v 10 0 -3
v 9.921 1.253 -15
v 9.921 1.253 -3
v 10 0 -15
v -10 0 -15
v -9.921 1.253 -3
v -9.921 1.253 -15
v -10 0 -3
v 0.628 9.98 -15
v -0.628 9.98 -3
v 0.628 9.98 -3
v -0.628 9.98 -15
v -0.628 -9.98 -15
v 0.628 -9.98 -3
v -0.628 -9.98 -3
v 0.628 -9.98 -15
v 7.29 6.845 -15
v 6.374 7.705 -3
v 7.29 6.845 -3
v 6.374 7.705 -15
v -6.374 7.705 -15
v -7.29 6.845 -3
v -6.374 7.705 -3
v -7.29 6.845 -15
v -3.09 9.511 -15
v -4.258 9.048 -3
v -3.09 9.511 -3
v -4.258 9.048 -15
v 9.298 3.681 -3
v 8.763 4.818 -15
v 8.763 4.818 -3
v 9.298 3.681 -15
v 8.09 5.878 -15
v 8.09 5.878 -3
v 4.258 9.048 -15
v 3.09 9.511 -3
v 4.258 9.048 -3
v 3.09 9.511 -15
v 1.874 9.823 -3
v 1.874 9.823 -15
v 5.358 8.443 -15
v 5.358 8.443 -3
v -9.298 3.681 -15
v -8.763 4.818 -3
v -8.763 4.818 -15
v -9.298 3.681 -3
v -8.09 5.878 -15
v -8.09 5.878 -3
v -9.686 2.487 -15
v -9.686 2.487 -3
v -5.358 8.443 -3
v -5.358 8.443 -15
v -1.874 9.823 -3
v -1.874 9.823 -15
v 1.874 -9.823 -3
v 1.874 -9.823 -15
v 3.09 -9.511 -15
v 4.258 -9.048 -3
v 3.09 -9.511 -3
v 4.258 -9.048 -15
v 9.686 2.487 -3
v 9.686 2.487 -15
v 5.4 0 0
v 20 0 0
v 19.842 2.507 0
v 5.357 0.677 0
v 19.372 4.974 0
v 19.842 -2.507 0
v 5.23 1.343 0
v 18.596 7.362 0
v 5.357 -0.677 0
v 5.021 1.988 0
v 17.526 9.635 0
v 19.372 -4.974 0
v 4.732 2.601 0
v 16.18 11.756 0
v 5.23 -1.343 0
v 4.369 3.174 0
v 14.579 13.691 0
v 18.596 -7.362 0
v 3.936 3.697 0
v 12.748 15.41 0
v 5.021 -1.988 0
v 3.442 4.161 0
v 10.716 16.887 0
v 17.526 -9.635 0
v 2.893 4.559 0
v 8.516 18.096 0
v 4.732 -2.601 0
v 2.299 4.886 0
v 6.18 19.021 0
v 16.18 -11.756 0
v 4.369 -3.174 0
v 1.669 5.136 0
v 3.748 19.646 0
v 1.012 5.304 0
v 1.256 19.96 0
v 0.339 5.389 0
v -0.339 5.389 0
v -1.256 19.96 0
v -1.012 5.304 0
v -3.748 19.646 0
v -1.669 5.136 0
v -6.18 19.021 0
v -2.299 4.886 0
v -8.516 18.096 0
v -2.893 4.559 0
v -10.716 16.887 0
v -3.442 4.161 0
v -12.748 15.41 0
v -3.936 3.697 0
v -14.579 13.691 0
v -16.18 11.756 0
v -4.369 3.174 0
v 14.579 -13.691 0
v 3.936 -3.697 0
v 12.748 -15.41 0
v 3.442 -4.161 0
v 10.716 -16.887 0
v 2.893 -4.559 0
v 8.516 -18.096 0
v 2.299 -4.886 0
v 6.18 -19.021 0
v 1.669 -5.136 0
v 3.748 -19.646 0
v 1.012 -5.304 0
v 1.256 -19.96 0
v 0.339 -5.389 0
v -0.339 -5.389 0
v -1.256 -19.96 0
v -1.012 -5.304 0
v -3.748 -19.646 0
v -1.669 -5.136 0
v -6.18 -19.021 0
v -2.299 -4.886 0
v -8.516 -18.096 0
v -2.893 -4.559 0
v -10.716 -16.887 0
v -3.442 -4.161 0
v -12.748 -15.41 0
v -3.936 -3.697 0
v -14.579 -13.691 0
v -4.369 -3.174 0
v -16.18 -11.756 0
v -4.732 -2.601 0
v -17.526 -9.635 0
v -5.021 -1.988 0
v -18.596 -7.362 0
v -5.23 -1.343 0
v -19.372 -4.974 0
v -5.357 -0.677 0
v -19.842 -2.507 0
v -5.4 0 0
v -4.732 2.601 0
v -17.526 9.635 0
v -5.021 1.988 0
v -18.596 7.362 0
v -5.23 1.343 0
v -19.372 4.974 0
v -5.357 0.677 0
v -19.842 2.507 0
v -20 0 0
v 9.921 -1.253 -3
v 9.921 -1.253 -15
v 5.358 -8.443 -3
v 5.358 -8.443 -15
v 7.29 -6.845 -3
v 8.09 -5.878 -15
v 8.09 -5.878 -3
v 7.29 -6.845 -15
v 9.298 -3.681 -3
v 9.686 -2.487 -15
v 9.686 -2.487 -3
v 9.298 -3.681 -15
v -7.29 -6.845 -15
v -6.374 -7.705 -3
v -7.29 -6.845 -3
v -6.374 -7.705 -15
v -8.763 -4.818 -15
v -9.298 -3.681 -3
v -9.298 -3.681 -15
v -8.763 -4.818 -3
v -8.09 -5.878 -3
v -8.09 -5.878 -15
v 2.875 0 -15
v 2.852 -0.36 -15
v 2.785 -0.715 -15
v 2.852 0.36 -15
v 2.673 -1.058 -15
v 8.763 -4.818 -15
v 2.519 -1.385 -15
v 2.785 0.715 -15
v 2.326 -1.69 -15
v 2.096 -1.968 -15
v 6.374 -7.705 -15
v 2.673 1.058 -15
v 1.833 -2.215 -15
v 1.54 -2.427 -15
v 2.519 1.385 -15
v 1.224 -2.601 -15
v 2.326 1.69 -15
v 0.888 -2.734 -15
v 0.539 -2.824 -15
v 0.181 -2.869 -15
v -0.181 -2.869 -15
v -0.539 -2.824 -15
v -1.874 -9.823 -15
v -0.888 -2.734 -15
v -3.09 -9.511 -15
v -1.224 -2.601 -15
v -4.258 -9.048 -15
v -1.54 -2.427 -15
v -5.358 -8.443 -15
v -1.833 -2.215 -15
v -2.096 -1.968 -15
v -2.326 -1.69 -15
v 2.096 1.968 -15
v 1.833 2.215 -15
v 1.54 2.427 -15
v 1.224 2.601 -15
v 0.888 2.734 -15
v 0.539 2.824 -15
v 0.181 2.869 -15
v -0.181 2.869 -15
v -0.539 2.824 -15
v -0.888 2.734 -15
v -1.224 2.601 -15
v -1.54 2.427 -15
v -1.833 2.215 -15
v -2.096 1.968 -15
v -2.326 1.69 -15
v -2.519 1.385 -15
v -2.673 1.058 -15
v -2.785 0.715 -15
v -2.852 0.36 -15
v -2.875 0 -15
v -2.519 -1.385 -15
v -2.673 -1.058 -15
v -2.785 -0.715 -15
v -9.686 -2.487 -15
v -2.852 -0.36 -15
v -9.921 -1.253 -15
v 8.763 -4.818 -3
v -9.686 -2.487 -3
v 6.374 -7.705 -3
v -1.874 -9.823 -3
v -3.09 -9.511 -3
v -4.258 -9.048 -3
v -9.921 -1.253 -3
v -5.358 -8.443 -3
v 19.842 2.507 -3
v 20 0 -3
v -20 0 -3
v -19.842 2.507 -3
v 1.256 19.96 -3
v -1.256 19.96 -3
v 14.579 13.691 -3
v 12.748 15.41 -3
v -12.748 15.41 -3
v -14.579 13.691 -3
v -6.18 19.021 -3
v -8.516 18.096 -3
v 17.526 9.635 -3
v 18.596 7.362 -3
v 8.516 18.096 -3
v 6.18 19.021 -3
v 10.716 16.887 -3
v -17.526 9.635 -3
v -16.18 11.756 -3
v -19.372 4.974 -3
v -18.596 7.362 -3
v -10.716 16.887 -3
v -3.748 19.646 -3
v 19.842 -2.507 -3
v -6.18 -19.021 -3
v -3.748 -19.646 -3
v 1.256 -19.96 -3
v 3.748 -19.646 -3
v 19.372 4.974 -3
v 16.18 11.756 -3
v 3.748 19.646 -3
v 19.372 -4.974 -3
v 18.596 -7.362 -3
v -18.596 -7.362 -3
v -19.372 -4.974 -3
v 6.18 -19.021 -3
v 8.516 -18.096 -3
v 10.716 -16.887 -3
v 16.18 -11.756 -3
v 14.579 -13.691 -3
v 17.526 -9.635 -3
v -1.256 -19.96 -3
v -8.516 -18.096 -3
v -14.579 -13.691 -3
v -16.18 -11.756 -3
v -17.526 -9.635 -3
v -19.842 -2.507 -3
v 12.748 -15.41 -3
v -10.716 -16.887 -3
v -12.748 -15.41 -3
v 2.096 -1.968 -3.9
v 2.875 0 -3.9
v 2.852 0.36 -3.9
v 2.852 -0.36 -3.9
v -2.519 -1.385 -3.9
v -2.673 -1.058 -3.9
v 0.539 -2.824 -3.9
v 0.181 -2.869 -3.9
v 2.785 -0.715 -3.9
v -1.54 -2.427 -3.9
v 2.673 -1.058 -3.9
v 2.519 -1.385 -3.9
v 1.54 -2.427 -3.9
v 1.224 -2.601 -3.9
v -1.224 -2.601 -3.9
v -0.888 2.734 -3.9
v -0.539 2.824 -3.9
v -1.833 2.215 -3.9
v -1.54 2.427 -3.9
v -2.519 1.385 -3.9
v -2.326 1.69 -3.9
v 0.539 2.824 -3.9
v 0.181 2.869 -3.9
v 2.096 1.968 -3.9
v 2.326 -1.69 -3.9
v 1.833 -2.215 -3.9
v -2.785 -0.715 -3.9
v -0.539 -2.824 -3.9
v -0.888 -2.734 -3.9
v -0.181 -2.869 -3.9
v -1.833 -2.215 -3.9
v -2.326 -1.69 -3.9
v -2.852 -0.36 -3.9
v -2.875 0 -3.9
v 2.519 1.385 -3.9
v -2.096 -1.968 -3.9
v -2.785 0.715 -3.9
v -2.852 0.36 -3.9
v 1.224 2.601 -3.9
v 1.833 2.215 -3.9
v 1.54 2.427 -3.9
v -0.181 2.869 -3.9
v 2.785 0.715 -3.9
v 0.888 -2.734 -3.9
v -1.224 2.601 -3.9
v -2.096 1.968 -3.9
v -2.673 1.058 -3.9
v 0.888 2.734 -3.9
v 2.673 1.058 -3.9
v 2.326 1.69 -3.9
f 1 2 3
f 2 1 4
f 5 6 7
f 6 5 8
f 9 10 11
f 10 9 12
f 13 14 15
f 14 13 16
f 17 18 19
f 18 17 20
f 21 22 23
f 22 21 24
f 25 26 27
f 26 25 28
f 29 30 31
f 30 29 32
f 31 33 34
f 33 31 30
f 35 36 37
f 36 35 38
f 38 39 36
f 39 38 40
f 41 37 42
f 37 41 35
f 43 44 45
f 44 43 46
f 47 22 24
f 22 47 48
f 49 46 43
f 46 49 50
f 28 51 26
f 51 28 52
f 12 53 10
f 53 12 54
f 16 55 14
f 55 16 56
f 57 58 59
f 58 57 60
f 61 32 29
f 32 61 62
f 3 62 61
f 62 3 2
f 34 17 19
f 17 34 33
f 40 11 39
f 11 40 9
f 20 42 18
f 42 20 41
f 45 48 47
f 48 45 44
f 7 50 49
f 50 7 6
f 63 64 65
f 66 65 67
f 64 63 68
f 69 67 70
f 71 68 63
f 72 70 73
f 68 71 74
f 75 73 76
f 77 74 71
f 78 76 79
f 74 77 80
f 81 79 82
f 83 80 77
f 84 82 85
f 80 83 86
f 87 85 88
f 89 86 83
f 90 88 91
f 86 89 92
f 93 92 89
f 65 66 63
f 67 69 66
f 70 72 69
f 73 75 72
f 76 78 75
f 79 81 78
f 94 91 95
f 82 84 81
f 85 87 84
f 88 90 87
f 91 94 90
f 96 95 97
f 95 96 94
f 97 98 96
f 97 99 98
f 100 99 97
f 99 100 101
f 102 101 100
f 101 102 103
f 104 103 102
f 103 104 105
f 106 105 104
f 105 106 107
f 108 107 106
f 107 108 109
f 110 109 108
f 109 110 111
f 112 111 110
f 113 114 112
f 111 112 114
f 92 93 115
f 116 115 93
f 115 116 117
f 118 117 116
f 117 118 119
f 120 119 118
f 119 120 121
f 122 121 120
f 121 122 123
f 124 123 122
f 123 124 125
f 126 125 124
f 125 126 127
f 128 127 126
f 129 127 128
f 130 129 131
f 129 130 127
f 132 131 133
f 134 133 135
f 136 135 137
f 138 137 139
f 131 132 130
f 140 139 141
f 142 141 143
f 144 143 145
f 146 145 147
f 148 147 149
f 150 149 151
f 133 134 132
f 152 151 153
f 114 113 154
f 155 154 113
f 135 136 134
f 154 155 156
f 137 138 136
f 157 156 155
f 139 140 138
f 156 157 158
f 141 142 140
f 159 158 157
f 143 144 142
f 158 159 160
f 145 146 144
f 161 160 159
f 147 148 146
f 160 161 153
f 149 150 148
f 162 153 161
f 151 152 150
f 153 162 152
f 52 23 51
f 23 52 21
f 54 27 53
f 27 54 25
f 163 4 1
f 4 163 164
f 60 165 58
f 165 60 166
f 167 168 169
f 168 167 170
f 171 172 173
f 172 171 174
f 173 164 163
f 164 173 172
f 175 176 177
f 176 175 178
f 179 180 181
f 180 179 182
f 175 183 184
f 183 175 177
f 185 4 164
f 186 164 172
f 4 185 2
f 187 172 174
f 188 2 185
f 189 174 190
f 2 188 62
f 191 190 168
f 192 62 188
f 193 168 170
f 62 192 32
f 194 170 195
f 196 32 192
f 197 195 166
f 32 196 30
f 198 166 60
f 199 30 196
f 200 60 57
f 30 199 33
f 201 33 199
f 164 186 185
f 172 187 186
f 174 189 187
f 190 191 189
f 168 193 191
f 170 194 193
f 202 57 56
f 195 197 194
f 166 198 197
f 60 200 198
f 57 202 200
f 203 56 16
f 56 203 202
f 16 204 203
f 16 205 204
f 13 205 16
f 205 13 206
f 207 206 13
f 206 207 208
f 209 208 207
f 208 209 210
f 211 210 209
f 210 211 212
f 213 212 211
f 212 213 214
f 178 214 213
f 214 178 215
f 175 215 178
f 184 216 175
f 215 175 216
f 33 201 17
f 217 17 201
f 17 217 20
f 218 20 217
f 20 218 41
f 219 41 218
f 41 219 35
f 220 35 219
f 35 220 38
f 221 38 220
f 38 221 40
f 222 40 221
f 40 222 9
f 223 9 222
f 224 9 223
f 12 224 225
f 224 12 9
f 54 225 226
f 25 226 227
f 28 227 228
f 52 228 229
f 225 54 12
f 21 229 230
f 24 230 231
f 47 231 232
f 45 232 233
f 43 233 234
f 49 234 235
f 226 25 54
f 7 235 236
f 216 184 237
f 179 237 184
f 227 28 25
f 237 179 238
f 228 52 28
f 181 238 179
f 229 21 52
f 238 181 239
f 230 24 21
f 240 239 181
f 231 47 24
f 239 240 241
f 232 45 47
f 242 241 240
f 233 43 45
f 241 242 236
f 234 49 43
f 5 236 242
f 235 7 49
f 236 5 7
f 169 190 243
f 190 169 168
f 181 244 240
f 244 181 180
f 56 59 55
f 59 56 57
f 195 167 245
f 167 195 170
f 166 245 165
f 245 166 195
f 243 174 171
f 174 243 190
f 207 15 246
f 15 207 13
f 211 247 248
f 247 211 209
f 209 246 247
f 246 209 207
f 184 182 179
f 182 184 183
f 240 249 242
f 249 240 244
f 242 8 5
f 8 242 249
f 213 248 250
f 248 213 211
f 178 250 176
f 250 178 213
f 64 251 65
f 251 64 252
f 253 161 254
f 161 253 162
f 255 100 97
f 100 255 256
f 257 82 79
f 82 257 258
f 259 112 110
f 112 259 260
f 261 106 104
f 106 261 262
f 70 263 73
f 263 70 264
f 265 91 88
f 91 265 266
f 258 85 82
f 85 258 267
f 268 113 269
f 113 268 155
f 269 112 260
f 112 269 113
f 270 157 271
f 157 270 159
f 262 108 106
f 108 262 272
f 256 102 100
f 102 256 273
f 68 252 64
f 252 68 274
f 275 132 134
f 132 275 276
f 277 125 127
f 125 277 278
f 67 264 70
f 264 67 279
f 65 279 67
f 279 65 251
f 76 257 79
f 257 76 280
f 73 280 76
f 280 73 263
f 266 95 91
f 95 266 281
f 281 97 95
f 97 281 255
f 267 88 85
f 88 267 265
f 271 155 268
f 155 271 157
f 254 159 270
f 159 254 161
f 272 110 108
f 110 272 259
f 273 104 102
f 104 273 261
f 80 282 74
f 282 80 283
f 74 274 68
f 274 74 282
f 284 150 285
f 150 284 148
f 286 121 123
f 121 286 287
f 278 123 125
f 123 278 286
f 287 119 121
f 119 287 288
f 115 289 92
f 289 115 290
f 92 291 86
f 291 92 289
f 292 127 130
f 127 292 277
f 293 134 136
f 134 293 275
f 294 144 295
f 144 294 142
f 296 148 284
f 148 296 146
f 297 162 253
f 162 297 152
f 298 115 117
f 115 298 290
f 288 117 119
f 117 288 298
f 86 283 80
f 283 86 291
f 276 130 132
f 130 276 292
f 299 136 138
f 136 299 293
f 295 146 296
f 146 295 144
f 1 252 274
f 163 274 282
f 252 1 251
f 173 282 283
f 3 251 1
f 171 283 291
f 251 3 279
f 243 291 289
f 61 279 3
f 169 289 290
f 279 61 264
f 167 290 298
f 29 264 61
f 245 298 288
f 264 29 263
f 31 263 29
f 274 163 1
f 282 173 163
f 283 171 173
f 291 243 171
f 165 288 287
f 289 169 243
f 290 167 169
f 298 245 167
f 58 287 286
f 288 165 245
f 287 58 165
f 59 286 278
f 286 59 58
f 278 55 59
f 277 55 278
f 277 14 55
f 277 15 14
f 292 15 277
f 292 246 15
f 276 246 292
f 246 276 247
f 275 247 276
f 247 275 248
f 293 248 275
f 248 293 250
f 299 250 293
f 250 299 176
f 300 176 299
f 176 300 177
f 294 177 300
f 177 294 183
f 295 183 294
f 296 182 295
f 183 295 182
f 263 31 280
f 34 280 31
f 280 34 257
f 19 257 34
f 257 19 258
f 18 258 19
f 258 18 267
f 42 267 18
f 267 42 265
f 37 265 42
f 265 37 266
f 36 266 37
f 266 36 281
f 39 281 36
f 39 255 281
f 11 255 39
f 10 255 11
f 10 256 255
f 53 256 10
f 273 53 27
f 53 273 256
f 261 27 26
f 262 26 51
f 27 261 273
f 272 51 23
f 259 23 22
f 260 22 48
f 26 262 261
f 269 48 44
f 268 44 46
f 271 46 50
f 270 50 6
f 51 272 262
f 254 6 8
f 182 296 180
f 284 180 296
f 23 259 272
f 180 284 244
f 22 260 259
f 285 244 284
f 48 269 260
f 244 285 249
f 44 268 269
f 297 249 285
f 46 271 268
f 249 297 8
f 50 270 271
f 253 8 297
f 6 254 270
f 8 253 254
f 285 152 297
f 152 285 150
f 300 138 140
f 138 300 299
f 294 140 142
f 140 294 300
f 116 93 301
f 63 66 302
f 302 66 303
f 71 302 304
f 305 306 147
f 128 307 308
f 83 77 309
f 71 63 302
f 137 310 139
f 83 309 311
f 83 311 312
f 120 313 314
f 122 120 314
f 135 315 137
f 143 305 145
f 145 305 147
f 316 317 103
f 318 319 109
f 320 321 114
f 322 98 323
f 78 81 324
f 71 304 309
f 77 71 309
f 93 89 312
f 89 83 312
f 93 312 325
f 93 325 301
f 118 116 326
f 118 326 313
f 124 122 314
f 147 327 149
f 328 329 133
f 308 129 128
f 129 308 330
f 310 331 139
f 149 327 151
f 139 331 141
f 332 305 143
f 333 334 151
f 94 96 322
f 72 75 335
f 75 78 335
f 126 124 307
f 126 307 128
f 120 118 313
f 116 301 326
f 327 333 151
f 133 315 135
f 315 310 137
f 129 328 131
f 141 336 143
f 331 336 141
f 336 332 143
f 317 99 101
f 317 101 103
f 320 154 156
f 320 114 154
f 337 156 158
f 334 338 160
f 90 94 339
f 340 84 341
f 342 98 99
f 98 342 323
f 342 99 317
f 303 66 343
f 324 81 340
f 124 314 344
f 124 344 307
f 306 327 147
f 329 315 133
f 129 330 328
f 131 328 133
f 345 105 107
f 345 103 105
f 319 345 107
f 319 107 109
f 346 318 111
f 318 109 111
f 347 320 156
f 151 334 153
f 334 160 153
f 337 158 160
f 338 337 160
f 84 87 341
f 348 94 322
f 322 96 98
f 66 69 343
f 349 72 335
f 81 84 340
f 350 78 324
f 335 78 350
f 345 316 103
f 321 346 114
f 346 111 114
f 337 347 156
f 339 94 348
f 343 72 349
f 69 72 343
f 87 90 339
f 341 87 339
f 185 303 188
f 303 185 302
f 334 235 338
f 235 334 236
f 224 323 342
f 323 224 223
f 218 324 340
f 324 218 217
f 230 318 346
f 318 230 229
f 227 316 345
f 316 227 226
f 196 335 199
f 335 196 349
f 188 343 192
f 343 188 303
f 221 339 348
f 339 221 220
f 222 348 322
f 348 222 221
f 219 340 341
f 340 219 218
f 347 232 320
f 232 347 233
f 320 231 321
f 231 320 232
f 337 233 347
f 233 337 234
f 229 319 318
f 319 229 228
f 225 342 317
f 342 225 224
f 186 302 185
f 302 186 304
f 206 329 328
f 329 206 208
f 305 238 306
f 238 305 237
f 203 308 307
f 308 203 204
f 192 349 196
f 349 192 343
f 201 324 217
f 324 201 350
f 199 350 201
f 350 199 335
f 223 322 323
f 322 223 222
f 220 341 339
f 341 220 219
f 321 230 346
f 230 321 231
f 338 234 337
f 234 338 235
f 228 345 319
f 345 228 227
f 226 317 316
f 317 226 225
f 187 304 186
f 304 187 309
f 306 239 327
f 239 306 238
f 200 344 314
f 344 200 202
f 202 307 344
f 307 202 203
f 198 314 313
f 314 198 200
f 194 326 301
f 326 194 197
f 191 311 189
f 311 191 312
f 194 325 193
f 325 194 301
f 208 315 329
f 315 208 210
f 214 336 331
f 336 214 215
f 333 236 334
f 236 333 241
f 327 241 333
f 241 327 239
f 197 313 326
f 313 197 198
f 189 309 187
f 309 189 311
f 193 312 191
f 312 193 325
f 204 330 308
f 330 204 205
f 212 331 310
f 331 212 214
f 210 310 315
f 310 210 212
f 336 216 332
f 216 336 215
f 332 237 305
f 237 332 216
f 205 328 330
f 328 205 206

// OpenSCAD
$fn = 50;


difference() {
	union() {
		translate(v = [0, 0, -15.0000000000]) {
			cylinder(h = 15, r = 10.0000000000);
		}
		translate(v = [0, 0, -3.0000000000]) {
			cylinder(h = 3, r = 20.0000000000);
		}
	}
	union() {
		translate(v = [0, 0, 0]) {
			rotate(a = [0, 0, 0]) {
				difference() {
					union() {
						#translate(v = [0, 0, -15.0000000000]) {
							cylinder(h = 15, r = 2.6000000000);
						}
						#translate(v = [0, 0, -3.9000000000]) {
							cylinder(h = 3.9000000000, r = 10.0000000000, r1 = 2.8750000000, r2 = 5.4000000000);
						}
						#translate(v = [0, 0, -15.0000000000]) {
							cylinder(h = 15, r = 2.8750000000);
						}
						#translate(v = [0, 0, -15.0000000000]) {
							cylinder(h = 15, r = 2.6000000000);
						}
					}
					union();
				}
			}
		}
	}
}
